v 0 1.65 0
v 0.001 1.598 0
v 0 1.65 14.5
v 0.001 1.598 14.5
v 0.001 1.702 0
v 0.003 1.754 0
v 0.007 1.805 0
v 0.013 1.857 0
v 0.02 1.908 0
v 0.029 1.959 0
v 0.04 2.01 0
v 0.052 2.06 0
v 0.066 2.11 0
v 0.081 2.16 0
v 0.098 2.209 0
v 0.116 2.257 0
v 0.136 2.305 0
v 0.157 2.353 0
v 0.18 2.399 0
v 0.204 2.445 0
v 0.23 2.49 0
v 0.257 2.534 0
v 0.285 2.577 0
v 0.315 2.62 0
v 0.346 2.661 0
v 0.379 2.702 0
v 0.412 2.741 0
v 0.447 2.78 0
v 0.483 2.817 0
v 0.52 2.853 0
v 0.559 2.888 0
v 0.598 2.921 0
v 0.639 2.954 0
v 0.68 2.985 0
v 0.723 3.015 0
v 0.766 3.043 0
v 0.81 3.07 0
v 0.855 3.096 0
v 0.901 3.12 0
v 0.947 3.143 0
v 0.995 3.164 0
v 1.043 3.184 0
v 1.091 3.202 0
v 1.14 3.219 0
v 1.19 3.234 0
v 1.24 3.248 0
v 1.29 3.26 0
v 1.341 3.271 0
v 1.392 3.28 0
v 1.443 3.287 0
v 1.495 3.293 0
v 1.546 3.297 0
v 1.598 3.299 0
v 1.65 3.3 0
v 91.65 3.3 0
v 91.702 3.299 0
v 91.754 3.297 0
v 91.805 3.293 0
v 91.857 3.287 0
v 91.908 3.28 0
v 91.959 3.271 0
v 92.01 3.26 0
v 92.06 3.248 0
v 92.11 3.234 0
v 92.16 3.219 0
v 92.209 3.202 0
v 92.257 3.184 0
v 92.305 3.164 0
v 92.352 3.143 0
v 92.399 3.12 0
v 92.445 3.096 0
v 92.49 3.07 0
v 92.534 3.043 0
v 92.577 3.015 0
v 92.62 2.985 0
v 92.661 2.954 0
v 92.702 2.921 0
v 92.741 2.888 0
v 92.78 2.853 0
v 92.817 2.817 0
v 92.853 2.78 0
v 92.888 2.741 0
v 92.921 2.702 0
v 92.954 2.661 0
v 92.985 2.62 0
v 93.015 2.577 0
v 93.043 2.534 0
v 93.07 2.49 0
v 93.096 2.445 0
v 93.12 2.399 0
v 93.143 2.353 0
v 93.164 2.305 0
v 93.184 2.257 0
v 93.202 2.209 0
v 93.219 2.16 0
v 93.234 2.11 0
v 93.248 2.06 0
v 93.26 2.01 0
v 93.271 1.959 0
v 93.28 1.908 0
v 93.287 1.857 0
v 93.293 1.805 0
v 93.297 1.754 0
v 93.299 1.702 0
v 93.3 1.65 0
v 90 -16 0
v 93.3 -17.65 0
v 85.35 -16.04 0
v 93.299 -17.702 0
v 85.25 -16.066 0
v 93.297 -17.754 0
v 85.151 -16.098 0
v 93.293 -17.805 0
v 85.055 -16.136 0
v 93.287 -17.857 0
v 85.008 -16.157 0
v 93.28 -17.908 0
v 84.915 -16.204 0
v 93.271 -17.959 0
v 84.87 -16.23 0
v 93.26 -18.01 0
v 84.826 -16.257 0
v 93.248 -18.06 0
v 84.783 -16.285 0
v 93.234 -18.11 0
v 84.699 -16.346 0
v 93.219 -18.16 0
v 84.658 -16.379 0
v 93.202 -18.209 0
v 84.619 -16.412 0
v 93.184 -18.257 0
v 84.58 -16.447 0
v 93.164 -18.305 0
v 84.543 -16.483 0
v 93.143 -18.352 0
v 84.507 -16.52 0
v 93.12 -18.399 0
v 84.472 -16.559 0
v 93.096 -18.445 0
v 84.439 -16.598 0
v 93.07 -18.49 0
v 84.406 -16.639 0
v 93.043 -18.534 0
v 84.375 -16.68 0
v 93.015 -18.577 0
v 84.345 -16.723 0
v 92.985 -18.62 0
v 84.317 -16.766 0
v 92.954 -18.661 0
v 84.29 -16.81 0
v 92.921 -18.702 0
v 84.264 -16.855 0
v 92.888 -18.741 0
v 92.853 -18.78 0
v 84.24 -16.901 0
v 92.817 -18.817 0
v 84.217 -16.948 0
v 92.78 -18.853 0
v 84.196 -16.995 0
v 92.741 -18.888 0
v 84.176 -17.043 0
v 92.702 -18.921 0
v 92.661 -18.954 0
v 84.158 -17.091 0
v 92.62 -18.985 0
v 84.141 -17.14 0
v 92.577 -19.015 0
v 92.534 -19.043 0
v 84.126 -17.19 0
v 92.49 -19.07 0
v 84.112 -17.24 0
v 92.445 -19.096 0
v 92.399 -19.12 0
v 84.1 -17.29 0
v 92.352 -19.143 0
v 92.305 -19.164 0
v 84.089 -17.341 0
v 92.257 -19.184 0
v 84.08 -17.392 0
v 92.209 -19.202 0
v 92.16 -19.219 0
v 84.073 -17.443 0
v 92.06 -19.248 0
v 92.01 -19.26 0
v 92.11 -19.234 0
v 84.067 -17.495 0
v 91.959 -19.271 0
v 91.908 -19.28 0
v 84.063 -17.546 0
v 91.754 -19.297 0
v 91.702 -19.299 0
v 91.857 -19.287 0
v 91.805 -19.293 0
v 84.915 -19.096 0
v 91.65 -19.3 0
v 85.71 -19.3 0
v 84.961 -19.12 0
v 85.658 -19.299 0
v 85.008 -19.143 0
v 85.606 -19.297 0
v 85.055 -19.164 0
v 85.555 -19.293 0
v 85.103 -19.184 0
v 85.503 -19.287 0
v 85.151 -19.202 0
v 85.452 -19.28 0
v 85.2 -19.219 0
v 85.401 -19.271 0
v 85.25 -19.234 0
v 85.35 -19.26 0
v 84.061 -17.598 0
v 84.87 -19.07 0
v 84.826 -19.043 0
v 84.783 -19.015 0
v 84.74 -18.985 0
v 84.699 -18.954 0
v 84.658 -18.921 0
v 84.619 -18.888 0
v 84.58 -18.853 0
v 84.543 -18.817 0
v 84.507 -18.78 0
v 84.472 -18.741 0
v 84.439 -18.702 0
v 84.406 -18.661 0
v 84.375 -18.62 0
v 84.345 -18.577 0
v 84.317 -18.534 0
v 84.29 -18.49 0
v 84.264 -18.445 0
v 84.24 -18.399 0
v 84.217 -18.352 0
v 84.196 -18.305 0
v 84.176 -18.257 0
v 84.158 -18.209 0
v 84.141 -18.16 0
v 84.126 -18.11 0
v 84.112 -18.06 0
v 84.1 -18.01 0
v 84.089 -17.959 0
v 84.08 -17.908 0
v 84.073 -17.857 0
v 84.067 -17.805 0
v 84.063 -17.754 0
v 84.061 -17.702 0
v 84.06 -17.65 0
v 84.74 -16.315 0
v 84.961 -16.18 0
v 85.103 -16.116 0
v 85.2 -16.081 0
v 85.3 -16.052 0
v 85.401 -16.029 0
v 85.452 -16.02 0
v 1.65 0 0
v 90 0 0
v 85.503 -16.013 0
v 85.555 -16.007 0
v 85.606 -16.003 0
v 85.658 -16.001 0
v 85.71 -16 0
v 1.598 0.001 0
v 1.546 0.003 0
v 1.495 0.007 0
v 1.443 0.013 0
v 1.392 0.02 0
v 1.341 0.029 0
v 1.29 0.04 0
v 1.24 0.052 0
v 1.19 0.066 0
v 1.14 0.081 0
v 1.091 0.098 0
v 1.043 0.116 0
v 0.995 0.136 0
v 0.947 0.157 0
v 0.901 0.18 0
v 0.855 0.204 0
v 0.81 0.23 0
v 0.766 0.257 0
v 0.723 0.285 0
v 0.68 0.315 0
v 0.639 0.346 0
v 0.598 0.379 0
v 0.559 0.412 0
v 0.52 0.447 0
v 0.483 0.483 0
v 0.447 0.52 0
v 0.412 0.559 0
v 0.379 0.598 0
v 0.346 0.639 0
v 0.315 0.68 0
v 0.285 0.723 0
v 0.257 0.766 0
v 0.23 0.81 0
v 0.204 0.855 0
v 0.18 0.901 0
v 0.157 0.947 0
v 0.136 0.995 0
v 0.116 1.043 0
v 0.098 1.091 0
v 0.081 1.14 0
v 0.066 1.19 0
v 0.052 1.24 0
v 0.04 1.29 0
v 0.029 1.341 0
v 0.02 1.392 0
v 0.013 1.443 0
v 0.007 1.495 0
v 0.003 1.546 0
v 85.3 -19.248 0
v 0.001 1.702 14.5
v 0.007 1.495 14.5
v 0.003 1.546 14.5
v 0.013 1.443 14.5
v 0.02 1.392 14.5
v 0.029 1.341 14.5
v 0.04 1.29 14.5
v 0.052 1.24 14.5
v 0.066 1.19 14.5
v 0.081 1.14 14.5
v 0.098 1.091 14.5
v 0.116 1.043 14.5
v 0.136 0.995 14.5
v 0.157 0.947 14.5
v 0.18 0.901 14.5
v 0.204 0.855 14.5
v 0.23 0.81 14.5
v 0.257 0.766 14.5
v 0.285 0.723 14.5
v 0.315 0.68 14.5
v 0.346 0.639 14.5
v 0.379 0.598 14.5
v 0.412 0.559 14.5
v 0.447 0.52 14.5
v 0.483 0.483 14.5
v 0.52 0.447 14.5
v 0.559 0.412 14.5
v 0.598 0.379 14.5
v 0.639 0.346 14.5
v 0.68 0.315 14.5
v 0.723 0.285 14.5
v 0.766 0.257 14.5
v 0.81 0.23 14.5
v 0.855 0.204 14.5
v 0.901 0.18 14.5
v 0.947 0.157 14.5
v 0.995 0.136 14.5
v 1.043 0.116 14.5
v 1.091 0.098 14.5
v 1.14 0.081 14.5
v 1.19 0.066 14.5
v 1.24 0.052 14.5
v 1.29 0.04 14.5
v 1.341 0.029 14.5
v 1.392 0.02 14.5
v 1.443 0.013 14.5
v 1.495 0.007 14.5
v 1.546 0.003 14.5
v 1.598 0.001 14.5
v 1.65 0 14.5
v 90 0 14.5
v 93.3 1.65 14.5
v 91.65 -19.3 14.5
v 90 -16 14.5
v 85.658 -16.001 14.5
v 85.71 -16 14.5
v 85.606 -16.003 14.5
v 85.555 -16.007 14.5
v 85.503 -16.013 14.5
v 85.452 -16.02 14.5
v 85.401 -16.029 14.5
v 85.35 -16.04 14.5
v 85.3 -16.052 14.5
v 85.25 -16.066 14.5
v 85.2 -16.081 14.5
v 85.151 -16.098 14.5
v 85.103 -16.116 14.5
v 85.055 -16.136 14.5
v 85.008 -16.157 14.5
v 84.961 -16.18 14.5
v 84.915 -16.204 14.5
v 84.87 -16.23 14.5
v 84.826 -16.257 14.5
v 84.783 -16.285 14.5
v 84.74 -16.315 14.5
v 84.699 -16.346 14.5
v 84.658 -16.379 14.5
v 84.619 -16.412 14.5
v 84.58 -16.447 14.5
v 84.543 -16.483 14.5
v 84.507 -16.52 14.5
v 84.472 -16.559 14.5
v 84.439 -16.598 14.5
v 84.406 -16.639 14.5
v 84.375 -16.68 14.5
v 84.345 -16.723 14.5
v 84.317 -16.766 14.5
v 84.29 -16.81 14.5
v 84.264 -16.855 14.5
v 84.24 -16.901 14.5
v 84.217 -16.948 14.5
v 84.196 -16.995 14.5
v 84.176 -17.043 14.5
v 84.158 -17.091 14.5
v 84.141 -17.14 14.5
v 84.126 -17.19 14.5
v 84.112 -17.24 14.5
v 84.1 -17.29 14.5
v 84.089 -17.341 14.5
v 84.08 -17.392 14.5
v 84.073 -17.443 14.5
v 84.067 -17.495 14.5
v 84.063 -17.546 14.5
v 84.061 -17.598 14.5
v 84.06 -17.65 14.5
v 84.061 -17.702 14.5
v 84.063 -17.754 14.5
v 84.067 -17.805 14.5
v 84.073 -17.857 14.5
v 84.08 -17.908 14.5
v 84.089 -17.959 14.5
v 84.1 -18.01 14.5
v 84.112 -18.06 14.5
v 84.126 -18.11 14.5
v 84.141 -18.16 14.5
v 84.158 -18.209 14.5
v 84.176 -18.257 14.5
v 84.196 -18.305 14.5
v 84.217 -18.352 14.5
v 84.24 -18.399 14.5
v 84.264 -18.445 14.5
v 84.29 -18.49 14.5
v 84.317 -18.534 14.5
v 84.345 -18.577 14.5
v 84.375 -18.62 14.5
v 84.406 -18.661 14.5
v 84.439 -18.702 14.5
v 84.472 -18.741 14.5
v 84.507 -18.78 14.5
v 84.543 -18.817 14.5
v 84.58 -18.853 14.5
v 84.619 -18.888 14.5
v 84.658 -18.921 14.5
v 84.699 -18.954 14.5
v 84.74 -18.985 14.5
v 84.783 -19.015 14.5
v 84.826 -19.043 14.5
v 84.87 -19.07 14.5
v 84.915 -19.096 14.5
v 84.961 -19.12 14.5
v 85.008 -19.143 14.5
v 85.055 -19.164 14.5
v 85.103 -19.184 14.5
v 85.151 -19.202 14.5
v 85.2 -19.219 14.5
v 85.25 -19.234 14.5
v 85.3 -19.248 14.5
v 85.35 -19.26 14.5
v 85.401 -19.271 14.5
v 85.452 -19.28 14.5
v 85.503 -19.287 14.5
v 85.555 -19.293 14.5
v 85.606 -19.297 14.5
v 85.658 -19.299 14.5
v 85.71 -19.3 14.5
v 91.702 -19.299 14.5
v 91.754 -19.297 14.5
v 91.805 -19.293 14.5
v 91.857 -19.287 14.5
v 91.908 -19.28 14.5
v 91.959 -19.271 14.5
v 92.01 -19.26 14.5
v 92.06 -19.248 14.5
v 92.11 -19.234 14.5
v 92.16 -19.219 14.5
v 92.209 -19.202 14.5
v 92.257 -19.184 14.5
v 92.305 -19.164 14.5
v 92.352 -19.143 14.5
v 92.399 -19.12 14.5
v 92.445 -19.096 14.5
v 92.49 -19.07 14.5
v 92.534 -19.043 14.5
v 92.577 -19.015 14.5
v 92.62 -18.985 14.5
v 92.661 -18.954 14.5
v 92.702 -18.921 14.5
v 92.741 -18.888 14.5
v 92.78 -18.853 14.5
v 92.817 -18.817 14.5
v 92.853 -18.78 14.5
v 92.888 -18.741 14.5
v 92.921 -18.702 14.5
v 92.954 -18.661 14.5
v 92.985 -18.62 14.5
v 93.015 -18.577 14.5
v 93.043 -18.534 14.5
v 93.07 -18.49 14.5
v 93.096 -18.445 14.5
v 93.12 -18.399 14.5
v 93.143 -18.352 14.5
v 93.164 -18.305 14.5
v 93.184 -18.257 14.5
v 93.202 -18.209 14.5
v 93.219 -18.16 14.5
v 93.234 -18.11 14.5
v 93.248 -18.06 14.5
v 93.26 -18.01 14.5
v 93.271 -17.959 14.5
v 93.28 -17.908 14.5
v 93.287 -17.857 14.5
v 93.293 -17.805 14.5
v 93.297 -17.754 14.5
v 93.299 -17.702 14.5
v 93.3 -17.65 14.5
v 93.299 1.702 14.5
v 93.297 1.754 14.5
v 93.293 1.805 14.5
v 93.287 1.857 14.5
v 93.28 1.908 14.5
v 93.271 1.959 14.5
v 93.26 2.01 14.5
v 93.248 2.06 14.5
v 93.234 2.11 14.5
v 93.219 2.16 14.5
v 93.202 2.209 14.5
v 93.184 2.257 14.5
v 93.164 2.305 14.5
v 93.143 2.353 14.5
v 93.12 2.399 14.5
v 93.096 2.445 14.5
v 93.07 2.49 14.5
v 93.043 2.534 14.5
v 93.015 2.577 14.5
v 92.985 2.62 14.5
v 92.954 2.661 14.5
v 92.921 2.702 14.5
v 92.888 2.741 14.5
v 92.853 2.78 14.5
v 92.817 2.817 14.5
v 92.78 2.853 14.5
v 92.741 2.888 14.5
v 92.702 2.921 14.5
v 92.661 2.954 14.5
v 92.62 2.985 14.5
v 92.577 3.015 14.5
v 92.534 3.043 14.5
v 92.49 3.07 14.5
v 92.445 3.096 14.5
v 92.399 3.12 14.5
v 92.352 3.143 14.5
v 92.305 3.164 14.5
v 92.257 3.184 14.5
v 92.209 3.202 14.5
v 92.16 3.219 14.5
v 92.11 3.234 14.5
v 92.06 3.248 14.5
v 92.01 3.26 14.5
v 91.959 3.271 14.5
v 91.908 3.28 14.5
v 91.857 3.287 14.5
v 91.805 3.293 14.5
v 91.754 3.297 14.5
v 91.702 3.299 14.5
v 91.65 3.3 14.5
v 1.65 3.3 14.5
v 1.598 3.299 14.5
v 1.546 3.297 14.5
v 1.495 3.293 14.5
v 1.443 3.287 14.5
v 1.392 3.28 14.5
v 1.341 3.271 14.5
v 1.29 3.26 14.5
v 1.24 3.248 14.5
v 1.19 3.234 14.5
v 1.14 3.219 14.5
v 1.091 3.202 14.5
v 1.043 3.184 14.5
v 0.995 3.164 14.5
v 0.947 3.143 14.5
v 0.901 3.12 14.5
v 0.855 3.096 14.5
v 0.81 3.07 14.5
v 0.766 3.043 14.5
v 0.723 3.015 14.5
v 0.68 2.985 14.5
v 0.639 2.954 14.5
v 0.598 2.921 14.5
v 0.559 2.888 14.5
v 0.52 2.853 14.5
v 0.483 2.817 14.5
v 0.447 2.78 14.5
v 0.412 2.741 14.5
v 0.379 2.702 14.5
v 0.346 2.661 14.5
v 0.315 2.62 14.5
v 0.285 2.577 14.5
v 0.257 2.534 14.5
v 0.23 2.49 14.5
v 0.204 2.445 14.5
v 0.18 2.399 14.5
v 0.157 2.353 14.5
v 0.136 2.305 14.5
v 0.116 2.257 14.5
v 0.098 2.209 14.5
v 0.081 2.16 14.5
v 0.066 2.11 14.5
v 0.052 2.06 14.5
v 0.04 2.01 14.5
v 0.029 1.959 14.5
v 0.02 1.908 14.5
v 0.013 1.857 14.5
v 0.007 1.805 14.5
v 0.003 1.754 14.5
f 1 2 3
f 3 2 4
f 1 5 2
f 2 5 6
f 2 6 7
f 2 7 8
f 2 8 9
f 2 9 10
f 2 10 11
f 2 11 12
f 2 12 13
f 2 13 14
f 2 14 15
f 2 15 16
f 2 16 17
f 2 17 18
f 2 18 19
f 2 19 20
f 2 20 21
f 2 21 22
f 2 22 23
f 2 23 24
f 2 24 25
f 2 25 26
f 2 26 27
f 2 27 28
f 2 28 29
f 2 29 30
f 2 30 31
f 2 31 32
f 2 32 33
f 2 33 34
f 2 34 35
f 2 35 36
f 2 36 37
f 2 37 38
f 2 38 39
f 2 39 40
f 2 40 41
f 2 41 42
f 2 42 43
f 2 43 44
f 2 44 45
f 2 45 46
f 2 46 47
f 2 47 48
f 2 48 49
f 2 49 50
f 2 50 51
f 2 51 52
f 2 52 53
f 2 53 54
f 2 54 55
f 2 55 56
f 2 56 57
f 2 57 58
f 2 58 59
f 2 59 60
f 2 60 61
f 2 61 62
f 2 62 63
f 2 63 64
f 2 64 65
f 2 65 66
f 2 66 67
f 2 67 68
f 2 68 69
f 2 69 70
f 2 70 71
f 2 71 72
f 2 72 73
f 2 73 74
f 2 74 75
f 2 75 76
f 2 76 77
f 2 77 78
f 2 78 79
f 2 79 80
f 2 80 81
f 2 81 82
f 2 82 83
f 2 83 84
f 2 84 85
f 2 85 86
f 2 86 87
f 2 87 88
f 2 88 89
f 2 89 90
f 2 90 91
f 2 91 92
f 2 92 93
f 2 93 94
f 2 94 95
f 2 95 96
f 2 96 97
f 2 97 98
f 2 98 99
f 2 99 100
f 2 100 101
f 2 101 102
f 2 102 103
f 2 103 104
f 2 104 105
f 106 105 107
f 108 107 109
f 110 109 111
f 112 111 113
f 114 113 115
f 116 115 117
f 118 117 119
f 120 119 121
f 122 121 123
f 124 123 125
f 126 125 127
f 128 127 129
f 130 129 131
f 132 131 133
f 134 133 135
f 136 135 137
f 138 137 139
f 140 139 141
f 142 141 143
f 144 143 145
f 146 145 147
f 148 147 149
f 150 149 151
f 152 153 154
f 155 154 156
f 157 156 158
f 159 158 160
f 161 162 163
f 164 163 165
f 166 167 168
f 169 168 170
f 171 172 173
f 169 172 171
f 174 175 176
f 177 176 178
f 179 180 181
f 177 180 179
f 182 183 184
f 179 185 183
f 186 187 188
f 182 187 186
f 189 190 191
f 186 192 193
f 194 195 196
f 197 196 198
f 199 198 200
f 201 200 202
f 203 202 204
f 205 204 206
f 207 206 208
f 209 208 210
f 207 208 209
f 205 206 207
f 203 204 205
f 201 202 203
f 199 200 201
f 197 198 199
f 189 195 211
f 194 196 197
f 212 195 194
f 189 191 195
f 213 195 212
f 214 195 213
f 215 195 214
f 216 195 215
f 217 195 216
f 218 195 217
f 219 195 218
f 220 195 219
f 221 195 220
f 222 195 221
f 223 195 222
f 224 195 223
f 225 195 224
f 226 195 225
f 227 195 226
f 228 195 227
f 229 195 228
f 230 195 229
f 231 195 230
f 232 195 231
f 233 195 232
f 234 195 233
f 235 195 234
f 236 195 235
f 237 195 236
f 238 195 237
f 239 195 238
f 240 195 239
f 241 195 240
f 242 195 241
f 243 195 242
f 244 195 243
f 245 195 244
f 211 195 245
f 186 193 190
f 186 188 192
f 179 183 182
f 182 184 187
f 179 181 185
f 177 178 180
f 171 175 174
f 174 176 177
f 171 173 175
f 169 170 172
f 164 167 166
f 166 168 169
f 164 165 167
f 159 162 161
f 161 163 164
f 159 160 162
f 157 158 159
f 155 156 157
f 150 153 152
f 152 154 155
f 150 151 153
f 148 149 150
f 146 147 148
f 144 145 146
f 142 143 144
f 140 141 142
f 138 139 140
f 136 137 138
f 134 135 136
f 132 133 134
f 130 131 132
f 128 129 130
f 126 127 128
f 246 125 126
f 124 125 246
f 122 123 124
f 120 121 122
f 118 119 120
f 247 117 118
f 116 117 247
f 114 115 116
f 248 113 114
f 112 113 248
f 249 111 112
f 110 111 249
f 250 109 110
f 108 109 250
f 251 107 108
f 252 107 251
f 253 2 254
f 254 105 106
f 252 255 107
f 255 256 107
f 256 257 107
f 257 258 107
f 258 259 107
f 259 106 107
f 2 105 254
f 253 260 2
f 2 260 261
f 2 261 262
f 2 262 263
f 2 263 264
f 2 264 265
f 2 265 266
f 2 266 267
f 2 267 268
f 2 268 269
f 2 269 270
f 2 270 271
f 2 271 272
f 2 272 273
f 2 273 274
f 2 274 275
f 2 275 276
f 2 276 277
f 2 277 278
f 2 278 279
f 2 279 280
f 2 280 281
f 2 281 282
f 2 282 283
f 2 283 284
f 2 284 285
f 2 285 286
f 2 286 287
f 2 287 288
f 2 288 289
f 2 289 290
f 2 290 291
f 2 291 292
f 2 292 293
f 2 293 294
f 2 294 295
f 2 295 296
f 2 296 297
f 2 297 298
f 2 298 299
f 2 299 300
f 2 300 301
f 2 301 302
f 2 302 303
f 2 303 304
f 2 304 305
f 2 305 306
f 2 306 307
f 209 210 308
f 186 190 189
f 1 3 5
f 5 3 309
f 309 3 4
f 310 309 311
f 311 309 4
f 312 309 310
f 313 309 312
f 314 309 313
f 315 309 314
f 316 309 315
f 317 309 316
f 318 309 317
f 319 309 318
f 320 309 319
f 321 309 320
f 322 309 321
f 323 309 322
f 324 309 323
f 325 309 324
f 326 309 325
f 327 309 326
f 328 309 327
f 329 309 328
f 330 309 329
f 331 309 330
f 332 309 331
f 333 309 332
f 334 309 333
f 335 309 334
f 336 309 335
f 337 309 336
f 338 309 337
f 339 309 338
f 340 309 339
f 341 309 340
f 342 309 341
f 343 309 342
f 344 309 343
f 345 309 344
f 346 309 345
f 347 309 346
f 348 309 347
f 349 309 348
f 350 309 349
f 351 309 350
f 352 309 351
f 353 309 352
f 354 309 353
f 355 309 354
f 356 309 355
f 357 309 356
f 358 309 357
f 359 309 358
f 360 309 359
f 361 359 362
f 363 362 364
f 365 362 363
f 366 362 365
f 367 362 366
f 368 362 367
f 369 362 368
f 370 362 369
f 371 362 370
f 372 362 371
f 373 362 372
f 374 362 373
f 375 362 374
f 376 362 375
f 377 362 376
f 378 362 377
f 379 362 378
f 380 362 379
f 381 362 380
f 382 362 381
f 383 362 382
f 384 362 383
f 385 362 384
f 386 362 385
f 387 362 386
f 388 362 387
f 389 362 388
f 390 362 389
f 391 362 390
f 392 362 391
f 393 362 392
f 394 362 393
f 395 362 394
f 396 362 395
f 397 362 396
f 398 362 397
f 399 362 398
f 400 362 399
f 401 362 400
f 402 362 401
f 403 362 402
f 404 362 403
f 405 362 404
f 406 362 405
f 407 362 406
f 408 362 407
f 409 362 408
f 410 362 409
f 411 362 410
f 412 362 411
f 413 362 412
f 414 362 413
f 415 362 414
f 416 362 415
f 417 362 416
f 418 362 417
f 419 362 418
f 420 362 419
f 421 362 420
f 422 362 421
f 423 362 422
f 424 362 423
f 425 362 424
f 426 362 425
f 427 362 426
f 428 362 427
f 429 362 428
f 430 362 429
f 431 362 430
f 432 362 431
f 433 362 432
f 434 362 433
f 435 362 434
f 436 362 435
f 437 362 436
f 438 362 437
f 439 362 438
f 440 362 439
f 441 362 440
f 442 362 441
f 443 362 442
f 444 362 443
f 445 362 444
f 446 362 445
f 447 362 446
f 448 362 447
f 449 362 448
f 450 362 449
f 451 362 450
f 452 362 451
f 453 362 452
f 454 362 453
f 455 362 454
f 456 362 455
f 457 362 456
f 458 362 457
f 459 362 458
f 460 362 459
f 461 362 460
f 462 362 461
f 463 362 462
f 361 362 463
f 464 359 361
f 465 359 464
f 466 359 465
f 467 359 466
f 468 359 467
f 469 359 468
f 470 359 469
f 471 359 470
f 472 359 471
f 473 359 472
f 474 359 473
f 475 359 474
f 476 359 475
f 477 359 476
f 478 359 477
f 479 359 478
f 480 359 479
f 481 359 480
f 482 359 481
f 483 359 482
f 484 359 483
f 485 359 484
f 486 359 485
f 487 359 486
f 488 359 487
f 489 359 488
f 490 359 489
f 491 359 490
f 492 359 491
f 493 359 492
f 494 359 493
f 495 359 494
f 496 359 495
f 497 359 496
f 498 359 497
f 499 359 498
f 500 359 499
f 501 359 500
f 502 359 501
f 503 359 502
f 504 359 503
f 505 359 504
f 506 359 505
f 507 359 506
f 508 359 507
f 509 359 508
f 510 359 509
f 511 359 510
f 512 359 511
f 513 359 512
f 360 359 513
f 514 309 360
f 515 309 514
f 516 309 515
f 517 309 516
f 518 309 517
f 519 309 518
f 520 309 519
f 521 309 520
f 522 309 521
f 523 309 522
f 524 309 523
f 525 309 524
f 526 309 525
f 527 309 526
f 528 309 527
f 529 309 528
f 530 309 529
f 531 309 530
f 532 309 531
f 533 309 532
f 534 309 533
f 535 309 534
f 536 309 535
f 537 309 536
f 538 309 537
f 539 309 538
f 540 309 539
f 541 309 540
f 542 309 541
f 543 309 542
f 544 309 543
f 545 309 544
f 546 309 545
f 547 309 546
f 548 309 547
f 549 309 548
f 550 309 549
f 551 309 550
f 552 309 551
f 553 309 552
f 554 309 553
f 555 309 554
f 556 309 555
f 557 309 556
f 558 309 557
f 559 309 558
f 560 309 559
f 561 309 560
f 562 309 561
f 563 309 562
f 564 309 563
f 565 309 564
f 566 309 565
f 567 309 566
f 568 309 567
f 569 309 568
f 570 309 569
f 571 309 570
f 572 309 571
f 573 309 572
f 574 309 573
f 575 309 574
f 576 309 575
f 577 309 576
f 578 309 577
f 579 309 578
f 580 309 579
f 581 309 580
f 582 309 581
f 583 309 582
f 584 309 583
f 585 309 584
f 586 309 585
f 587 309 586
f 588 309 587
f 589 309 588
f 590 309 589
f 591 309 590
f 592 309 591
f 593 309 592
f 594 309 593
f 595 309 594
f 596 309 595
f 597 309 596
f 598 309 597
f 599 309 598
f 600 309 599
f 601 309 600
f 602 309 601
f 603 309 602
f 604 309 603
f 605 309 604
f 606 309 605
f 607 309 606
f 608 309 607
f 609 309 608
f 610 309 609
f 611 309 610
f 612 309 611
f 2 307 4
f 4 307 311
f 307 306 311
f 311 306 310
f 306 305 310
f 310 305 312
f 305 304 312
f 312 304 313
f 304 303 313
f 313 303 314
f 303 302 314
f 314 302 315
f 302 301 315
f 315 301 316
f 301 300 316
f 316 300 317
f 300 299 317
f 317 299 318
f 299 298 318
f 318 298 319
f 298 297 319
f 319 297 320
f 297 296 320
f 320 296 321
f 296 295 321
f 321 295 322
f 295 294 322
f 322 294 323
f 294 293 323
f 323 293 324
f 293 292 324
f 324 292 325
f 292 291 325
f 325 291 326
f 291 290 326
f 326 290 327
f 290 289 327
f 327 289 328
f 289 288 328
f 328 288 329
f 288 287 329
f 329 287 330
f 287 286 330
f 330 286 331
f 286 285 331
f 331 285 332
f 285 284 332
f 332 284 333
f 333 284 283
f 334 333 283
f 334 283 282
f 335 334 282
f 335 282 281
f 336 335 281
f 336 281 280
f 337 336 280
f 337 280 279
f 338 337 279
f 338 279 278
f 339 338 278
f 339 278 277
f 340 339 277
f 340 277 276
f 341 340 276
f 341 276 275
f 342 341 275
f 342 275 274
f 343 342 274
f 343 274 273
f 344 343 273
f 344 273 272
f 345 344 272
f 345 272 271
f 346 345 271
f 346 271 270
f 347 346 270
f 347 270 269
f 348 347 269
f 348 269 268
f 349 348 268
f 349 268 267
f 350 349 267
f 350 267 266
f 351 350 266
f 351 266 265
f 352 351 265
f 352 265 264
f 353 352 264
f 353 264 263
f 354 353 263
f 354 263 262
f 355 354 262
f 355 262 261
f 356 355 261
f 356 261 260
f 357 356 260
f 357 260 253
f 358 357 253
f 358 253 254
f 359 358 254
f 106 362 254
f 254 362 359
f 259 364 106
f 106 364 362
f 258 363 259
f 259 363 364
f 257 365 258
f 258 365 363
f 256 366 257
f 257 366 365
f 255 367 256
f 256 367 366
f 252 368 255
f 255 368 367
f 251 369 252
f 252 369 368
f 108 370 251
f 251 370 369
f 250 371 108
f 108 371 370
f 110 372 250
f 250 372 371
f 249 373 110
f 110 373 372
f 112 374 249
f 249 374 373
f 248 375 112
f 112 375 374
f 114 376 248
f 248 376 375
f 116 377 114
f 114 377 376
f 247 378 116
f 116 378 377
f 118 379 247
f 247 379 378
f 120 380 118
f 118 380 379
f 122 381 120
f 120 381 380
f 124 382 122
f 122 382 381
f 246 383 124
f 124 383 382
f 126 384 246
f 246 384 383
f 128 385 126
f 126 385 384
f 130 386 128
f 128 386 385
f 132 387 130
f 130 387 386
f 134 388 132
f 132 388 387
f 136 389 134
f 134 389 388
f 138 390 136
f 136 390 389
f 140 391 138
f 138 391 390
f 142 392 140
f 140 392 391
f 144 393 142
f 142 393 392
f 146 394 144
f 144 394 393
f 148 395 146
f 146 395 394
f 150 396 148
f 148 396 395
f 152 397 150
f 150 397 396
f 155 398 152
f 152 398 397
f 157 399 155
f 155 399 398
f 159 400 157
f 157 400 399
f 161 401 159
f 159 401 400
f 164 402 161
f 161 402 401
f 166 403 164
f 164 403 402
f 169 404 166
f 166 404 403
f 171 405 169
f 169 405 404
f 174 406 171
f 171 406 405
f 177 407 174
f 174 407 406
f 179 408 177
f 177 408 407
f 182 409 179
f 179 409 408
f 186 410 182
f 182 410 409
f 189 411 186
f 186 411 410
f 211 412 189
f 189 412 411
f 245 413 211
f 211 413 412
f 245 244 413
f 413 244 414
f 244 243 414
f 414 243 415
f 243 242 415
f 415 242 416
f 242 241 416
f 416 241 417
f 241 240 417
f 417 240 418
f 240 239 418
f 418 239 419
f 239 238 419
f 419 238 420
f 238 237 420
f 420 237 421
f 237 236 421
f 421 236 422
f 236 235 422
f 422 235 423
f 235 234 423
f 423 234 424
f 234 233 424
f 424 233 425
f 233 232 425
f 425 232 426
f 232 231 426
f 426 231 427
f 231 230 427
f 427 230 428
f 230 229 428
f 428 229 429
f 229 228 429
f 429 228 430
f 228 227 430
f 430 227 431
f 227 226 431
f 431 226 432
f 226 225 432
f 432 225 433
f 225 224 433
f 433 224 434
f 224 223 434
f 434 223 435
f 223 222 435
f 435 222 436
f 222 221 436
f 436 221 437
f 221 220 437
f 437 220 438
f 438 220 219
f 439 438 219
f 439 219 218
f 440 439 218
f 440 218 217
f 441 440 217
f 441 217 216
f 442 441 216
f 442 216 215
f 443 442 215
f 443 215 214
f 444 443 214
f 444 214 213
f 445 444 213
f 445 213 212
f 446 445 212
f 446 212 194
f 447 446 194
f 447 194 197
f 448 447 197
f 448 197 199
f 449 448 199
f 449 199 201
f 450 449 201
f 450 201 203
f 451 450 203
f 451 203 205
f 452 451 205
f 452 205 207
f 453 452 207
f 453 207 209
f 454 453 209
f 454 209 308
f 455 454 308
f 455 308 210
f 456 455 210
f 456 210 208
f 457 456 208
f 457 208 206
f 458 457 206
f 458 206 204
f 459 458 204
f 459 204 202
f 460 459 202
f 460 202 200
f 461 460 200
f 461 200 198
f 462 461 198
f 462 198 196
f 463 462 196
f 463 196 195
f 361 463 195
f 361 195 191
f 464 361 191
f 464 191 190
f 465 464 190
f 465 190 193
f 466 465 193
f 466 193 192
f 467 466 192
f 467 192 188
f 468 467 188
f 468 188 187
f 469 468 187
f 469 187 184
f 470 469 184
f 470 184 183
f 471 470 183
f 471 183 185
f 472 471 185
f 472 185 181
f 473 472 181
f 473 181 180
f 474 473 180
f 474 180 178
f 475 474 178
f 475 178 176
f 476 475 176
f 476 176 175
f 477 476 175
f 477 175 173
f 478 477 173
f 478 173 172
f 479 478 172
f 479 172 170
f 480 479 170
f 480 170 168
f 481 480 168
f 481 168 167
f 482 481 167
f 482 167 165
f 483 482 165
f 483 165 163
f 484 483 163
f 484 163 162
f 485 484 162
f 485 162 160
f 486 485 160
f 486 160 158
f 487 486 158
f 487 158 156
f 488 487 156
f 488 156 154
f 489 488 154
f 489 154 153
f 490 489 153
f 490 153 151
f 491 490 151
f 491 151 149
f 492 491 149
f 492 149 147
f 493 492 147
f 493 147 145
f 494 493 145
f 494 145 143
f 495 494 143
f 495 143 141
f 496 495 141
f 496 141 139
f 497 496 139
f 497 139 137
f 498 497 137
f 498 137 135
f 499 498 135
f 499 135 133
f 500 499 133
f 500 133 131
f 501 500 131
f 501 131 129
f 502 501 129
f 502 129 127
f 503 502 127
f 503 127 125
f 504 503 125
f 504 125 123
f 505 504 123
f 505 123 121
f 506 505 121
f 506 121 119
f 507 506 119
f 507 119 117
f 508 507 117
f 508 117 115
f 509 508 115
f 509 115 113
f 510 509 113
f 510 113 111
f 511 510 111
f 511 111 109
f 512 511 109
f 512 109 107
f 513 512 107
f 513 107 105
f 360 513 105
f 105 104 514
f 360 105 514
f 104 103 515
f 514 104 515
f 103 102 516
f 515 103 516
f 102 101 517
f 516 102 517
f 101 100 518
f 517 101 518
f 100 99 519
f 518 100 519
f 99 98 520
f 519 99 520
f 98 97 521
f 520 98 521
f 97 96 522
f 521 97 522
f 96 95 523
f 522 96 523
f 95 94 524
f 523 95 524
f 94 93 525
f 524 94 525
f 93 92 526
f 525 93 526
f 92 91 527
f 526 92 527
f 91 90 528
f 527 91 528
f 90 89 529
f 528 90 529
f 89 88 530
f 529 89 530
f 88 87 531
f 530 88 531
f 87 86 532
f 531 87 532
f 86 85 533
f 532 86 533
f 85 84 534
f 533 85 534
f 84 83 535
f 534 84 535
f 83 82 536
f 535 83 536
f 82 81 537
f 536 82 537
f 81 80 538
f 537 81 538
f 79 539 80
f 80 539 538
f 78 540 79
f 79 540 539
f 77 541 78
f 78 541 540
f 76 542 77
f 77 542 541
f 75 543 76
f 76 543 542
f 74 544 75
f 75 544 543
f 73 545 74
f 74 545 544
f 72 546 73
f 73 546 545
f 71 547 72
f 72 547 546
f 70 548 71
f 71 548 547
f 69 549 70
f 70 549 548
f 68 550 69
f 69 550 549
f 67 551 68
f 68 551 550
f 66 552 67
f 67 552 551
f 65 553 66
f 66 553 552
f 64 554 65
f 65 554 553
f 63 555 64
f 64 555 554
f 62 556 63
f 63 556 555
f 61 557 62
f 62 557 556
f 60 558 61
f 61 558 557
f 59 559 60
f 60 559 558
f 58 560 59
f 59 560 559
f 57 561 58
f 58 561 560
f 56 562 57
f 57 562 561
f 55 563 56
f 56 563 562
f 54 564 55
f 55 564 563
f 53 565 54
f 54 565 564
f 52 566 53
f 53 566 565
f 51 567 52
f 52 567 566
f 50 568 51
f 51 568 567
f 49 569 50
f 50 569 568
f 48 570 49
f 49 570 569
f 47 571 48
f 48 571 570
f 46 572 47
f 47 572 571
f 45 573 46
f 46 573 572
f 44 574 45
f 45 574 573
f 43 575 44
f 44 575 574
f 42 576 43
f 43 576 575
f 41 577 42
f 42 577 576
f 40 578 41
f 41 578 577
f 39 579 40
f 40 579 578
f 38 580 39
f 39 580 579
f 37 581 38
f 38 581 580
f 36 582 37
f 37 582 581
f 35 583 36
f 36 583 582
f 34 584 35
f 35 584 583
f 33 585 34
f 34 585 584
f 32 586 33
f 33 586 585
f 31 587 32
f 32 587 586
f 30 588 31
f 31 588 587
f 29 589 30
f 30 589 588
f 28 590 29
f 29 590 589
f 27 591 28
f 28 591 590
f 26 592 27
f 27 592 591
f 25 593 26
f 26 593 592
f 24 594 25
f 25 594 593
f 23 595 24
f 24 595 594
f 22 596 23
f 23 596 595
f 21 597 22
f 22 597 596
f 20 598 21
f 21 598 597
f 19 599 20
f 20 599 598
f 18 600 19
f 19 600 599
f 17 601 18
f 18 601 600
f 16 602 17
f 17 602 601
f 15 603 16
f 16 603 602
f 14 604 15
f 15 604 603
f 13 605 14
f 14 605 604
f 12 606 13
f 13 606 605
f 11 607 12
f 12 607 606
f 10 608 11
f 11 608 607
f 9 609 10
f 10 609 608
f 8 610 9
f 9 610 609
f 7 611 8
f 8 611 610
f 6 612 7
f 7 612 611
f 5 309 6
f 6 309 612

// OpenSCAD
quality = 200; // 200 for final export...

c_post_size = 29;          			// Size of Bike post to fit (mine is 28mmx29mm)
c_gap = c_post_size / 2;

c_height = c_post_size / 2;				// How tall to make clamp side
c_thickness = 5;						// How thick (around post)
c_edge = 1.5;								// Bevel edge size

c_tab_mult = c_thickness * 2.8;		// Width of side tabs (relative)
c_hole_radius = 1.5;					// Radius of screw holes

c_phone_height = 10;					// Height of phone above post

c_phone_width = 80.5;		          // Width between side clamps (orig 74, new phone 80.5)
c_phone_clamp_length = 90;	 		// Length of clamp arm
c_phone_thickness = 16;		      // Thickness of phone (front-back) (orig 14, new 16)

c_bracket_thickness = c_thickness * .66;
c_bracket_tab = c_tab_mult * .66;

z_offset = 0;

difference()
{
	// Additive items within union...
	union()
	{

		// Hull from point-to-point for smoothed corners...
		hull()
{
		translate([c_bracket_thickness / 2, c_bracket_thickness / 2, z_offset]) cylinder(c_height, c_bracket_thickness / 2, c_bracket_thickness / 2, $fn=quality);
		translate([(c_bracket_thickness / 2) + c_phone_clamp_length, c_bracket_thickness / 2, z_offset]) cylinder(c_height, c_bracket_thickness / 2, c_bracket_thickness / 2, $fn=quality);
}
hull()
{
		translate([(c_bracket_thickness / 2) + c_phone_clamp_length, c_bracket_thickness / 2, z_offset]) cylinder(c_height, c_bracket_thickness / 2, c_bracket_thickness / 2, $fn=quality);
		translate([(c_bracket_thickness / 2) + c_phone_clamp_length, (c_bracket_thickness / 2)-(c_phone_thickness + c_bracket_thickness), z_offset]) cylinder(c_height, c_bracket_thickness / 2, c_bracket_thickness / 2, $fn=quality);
}
hull()
{
		translate([(c_bracket_thickness / 2) + c_phone_clamp_length, (c_bracket_thickness / 2)-(c_phone_thickness + c_bracket_thickness), z_offset]) cylinder(c_height, c_bracket_thickness / 2, c_bracket_thickness / 2, $fn=quality);
		translate([(c_bracket_thickness / 2) + c_phone_clamp_length - c_bracket_tab + c_bracket_thickness, (c_bracket_thickness / 2)-(c_phone_thickness + c_bracket_thickness), z_offset]) cylinder(c_height, c_bracket_thickness / 2, c_bracket_thickness / 2, $fn=quality);
}


	}
}
